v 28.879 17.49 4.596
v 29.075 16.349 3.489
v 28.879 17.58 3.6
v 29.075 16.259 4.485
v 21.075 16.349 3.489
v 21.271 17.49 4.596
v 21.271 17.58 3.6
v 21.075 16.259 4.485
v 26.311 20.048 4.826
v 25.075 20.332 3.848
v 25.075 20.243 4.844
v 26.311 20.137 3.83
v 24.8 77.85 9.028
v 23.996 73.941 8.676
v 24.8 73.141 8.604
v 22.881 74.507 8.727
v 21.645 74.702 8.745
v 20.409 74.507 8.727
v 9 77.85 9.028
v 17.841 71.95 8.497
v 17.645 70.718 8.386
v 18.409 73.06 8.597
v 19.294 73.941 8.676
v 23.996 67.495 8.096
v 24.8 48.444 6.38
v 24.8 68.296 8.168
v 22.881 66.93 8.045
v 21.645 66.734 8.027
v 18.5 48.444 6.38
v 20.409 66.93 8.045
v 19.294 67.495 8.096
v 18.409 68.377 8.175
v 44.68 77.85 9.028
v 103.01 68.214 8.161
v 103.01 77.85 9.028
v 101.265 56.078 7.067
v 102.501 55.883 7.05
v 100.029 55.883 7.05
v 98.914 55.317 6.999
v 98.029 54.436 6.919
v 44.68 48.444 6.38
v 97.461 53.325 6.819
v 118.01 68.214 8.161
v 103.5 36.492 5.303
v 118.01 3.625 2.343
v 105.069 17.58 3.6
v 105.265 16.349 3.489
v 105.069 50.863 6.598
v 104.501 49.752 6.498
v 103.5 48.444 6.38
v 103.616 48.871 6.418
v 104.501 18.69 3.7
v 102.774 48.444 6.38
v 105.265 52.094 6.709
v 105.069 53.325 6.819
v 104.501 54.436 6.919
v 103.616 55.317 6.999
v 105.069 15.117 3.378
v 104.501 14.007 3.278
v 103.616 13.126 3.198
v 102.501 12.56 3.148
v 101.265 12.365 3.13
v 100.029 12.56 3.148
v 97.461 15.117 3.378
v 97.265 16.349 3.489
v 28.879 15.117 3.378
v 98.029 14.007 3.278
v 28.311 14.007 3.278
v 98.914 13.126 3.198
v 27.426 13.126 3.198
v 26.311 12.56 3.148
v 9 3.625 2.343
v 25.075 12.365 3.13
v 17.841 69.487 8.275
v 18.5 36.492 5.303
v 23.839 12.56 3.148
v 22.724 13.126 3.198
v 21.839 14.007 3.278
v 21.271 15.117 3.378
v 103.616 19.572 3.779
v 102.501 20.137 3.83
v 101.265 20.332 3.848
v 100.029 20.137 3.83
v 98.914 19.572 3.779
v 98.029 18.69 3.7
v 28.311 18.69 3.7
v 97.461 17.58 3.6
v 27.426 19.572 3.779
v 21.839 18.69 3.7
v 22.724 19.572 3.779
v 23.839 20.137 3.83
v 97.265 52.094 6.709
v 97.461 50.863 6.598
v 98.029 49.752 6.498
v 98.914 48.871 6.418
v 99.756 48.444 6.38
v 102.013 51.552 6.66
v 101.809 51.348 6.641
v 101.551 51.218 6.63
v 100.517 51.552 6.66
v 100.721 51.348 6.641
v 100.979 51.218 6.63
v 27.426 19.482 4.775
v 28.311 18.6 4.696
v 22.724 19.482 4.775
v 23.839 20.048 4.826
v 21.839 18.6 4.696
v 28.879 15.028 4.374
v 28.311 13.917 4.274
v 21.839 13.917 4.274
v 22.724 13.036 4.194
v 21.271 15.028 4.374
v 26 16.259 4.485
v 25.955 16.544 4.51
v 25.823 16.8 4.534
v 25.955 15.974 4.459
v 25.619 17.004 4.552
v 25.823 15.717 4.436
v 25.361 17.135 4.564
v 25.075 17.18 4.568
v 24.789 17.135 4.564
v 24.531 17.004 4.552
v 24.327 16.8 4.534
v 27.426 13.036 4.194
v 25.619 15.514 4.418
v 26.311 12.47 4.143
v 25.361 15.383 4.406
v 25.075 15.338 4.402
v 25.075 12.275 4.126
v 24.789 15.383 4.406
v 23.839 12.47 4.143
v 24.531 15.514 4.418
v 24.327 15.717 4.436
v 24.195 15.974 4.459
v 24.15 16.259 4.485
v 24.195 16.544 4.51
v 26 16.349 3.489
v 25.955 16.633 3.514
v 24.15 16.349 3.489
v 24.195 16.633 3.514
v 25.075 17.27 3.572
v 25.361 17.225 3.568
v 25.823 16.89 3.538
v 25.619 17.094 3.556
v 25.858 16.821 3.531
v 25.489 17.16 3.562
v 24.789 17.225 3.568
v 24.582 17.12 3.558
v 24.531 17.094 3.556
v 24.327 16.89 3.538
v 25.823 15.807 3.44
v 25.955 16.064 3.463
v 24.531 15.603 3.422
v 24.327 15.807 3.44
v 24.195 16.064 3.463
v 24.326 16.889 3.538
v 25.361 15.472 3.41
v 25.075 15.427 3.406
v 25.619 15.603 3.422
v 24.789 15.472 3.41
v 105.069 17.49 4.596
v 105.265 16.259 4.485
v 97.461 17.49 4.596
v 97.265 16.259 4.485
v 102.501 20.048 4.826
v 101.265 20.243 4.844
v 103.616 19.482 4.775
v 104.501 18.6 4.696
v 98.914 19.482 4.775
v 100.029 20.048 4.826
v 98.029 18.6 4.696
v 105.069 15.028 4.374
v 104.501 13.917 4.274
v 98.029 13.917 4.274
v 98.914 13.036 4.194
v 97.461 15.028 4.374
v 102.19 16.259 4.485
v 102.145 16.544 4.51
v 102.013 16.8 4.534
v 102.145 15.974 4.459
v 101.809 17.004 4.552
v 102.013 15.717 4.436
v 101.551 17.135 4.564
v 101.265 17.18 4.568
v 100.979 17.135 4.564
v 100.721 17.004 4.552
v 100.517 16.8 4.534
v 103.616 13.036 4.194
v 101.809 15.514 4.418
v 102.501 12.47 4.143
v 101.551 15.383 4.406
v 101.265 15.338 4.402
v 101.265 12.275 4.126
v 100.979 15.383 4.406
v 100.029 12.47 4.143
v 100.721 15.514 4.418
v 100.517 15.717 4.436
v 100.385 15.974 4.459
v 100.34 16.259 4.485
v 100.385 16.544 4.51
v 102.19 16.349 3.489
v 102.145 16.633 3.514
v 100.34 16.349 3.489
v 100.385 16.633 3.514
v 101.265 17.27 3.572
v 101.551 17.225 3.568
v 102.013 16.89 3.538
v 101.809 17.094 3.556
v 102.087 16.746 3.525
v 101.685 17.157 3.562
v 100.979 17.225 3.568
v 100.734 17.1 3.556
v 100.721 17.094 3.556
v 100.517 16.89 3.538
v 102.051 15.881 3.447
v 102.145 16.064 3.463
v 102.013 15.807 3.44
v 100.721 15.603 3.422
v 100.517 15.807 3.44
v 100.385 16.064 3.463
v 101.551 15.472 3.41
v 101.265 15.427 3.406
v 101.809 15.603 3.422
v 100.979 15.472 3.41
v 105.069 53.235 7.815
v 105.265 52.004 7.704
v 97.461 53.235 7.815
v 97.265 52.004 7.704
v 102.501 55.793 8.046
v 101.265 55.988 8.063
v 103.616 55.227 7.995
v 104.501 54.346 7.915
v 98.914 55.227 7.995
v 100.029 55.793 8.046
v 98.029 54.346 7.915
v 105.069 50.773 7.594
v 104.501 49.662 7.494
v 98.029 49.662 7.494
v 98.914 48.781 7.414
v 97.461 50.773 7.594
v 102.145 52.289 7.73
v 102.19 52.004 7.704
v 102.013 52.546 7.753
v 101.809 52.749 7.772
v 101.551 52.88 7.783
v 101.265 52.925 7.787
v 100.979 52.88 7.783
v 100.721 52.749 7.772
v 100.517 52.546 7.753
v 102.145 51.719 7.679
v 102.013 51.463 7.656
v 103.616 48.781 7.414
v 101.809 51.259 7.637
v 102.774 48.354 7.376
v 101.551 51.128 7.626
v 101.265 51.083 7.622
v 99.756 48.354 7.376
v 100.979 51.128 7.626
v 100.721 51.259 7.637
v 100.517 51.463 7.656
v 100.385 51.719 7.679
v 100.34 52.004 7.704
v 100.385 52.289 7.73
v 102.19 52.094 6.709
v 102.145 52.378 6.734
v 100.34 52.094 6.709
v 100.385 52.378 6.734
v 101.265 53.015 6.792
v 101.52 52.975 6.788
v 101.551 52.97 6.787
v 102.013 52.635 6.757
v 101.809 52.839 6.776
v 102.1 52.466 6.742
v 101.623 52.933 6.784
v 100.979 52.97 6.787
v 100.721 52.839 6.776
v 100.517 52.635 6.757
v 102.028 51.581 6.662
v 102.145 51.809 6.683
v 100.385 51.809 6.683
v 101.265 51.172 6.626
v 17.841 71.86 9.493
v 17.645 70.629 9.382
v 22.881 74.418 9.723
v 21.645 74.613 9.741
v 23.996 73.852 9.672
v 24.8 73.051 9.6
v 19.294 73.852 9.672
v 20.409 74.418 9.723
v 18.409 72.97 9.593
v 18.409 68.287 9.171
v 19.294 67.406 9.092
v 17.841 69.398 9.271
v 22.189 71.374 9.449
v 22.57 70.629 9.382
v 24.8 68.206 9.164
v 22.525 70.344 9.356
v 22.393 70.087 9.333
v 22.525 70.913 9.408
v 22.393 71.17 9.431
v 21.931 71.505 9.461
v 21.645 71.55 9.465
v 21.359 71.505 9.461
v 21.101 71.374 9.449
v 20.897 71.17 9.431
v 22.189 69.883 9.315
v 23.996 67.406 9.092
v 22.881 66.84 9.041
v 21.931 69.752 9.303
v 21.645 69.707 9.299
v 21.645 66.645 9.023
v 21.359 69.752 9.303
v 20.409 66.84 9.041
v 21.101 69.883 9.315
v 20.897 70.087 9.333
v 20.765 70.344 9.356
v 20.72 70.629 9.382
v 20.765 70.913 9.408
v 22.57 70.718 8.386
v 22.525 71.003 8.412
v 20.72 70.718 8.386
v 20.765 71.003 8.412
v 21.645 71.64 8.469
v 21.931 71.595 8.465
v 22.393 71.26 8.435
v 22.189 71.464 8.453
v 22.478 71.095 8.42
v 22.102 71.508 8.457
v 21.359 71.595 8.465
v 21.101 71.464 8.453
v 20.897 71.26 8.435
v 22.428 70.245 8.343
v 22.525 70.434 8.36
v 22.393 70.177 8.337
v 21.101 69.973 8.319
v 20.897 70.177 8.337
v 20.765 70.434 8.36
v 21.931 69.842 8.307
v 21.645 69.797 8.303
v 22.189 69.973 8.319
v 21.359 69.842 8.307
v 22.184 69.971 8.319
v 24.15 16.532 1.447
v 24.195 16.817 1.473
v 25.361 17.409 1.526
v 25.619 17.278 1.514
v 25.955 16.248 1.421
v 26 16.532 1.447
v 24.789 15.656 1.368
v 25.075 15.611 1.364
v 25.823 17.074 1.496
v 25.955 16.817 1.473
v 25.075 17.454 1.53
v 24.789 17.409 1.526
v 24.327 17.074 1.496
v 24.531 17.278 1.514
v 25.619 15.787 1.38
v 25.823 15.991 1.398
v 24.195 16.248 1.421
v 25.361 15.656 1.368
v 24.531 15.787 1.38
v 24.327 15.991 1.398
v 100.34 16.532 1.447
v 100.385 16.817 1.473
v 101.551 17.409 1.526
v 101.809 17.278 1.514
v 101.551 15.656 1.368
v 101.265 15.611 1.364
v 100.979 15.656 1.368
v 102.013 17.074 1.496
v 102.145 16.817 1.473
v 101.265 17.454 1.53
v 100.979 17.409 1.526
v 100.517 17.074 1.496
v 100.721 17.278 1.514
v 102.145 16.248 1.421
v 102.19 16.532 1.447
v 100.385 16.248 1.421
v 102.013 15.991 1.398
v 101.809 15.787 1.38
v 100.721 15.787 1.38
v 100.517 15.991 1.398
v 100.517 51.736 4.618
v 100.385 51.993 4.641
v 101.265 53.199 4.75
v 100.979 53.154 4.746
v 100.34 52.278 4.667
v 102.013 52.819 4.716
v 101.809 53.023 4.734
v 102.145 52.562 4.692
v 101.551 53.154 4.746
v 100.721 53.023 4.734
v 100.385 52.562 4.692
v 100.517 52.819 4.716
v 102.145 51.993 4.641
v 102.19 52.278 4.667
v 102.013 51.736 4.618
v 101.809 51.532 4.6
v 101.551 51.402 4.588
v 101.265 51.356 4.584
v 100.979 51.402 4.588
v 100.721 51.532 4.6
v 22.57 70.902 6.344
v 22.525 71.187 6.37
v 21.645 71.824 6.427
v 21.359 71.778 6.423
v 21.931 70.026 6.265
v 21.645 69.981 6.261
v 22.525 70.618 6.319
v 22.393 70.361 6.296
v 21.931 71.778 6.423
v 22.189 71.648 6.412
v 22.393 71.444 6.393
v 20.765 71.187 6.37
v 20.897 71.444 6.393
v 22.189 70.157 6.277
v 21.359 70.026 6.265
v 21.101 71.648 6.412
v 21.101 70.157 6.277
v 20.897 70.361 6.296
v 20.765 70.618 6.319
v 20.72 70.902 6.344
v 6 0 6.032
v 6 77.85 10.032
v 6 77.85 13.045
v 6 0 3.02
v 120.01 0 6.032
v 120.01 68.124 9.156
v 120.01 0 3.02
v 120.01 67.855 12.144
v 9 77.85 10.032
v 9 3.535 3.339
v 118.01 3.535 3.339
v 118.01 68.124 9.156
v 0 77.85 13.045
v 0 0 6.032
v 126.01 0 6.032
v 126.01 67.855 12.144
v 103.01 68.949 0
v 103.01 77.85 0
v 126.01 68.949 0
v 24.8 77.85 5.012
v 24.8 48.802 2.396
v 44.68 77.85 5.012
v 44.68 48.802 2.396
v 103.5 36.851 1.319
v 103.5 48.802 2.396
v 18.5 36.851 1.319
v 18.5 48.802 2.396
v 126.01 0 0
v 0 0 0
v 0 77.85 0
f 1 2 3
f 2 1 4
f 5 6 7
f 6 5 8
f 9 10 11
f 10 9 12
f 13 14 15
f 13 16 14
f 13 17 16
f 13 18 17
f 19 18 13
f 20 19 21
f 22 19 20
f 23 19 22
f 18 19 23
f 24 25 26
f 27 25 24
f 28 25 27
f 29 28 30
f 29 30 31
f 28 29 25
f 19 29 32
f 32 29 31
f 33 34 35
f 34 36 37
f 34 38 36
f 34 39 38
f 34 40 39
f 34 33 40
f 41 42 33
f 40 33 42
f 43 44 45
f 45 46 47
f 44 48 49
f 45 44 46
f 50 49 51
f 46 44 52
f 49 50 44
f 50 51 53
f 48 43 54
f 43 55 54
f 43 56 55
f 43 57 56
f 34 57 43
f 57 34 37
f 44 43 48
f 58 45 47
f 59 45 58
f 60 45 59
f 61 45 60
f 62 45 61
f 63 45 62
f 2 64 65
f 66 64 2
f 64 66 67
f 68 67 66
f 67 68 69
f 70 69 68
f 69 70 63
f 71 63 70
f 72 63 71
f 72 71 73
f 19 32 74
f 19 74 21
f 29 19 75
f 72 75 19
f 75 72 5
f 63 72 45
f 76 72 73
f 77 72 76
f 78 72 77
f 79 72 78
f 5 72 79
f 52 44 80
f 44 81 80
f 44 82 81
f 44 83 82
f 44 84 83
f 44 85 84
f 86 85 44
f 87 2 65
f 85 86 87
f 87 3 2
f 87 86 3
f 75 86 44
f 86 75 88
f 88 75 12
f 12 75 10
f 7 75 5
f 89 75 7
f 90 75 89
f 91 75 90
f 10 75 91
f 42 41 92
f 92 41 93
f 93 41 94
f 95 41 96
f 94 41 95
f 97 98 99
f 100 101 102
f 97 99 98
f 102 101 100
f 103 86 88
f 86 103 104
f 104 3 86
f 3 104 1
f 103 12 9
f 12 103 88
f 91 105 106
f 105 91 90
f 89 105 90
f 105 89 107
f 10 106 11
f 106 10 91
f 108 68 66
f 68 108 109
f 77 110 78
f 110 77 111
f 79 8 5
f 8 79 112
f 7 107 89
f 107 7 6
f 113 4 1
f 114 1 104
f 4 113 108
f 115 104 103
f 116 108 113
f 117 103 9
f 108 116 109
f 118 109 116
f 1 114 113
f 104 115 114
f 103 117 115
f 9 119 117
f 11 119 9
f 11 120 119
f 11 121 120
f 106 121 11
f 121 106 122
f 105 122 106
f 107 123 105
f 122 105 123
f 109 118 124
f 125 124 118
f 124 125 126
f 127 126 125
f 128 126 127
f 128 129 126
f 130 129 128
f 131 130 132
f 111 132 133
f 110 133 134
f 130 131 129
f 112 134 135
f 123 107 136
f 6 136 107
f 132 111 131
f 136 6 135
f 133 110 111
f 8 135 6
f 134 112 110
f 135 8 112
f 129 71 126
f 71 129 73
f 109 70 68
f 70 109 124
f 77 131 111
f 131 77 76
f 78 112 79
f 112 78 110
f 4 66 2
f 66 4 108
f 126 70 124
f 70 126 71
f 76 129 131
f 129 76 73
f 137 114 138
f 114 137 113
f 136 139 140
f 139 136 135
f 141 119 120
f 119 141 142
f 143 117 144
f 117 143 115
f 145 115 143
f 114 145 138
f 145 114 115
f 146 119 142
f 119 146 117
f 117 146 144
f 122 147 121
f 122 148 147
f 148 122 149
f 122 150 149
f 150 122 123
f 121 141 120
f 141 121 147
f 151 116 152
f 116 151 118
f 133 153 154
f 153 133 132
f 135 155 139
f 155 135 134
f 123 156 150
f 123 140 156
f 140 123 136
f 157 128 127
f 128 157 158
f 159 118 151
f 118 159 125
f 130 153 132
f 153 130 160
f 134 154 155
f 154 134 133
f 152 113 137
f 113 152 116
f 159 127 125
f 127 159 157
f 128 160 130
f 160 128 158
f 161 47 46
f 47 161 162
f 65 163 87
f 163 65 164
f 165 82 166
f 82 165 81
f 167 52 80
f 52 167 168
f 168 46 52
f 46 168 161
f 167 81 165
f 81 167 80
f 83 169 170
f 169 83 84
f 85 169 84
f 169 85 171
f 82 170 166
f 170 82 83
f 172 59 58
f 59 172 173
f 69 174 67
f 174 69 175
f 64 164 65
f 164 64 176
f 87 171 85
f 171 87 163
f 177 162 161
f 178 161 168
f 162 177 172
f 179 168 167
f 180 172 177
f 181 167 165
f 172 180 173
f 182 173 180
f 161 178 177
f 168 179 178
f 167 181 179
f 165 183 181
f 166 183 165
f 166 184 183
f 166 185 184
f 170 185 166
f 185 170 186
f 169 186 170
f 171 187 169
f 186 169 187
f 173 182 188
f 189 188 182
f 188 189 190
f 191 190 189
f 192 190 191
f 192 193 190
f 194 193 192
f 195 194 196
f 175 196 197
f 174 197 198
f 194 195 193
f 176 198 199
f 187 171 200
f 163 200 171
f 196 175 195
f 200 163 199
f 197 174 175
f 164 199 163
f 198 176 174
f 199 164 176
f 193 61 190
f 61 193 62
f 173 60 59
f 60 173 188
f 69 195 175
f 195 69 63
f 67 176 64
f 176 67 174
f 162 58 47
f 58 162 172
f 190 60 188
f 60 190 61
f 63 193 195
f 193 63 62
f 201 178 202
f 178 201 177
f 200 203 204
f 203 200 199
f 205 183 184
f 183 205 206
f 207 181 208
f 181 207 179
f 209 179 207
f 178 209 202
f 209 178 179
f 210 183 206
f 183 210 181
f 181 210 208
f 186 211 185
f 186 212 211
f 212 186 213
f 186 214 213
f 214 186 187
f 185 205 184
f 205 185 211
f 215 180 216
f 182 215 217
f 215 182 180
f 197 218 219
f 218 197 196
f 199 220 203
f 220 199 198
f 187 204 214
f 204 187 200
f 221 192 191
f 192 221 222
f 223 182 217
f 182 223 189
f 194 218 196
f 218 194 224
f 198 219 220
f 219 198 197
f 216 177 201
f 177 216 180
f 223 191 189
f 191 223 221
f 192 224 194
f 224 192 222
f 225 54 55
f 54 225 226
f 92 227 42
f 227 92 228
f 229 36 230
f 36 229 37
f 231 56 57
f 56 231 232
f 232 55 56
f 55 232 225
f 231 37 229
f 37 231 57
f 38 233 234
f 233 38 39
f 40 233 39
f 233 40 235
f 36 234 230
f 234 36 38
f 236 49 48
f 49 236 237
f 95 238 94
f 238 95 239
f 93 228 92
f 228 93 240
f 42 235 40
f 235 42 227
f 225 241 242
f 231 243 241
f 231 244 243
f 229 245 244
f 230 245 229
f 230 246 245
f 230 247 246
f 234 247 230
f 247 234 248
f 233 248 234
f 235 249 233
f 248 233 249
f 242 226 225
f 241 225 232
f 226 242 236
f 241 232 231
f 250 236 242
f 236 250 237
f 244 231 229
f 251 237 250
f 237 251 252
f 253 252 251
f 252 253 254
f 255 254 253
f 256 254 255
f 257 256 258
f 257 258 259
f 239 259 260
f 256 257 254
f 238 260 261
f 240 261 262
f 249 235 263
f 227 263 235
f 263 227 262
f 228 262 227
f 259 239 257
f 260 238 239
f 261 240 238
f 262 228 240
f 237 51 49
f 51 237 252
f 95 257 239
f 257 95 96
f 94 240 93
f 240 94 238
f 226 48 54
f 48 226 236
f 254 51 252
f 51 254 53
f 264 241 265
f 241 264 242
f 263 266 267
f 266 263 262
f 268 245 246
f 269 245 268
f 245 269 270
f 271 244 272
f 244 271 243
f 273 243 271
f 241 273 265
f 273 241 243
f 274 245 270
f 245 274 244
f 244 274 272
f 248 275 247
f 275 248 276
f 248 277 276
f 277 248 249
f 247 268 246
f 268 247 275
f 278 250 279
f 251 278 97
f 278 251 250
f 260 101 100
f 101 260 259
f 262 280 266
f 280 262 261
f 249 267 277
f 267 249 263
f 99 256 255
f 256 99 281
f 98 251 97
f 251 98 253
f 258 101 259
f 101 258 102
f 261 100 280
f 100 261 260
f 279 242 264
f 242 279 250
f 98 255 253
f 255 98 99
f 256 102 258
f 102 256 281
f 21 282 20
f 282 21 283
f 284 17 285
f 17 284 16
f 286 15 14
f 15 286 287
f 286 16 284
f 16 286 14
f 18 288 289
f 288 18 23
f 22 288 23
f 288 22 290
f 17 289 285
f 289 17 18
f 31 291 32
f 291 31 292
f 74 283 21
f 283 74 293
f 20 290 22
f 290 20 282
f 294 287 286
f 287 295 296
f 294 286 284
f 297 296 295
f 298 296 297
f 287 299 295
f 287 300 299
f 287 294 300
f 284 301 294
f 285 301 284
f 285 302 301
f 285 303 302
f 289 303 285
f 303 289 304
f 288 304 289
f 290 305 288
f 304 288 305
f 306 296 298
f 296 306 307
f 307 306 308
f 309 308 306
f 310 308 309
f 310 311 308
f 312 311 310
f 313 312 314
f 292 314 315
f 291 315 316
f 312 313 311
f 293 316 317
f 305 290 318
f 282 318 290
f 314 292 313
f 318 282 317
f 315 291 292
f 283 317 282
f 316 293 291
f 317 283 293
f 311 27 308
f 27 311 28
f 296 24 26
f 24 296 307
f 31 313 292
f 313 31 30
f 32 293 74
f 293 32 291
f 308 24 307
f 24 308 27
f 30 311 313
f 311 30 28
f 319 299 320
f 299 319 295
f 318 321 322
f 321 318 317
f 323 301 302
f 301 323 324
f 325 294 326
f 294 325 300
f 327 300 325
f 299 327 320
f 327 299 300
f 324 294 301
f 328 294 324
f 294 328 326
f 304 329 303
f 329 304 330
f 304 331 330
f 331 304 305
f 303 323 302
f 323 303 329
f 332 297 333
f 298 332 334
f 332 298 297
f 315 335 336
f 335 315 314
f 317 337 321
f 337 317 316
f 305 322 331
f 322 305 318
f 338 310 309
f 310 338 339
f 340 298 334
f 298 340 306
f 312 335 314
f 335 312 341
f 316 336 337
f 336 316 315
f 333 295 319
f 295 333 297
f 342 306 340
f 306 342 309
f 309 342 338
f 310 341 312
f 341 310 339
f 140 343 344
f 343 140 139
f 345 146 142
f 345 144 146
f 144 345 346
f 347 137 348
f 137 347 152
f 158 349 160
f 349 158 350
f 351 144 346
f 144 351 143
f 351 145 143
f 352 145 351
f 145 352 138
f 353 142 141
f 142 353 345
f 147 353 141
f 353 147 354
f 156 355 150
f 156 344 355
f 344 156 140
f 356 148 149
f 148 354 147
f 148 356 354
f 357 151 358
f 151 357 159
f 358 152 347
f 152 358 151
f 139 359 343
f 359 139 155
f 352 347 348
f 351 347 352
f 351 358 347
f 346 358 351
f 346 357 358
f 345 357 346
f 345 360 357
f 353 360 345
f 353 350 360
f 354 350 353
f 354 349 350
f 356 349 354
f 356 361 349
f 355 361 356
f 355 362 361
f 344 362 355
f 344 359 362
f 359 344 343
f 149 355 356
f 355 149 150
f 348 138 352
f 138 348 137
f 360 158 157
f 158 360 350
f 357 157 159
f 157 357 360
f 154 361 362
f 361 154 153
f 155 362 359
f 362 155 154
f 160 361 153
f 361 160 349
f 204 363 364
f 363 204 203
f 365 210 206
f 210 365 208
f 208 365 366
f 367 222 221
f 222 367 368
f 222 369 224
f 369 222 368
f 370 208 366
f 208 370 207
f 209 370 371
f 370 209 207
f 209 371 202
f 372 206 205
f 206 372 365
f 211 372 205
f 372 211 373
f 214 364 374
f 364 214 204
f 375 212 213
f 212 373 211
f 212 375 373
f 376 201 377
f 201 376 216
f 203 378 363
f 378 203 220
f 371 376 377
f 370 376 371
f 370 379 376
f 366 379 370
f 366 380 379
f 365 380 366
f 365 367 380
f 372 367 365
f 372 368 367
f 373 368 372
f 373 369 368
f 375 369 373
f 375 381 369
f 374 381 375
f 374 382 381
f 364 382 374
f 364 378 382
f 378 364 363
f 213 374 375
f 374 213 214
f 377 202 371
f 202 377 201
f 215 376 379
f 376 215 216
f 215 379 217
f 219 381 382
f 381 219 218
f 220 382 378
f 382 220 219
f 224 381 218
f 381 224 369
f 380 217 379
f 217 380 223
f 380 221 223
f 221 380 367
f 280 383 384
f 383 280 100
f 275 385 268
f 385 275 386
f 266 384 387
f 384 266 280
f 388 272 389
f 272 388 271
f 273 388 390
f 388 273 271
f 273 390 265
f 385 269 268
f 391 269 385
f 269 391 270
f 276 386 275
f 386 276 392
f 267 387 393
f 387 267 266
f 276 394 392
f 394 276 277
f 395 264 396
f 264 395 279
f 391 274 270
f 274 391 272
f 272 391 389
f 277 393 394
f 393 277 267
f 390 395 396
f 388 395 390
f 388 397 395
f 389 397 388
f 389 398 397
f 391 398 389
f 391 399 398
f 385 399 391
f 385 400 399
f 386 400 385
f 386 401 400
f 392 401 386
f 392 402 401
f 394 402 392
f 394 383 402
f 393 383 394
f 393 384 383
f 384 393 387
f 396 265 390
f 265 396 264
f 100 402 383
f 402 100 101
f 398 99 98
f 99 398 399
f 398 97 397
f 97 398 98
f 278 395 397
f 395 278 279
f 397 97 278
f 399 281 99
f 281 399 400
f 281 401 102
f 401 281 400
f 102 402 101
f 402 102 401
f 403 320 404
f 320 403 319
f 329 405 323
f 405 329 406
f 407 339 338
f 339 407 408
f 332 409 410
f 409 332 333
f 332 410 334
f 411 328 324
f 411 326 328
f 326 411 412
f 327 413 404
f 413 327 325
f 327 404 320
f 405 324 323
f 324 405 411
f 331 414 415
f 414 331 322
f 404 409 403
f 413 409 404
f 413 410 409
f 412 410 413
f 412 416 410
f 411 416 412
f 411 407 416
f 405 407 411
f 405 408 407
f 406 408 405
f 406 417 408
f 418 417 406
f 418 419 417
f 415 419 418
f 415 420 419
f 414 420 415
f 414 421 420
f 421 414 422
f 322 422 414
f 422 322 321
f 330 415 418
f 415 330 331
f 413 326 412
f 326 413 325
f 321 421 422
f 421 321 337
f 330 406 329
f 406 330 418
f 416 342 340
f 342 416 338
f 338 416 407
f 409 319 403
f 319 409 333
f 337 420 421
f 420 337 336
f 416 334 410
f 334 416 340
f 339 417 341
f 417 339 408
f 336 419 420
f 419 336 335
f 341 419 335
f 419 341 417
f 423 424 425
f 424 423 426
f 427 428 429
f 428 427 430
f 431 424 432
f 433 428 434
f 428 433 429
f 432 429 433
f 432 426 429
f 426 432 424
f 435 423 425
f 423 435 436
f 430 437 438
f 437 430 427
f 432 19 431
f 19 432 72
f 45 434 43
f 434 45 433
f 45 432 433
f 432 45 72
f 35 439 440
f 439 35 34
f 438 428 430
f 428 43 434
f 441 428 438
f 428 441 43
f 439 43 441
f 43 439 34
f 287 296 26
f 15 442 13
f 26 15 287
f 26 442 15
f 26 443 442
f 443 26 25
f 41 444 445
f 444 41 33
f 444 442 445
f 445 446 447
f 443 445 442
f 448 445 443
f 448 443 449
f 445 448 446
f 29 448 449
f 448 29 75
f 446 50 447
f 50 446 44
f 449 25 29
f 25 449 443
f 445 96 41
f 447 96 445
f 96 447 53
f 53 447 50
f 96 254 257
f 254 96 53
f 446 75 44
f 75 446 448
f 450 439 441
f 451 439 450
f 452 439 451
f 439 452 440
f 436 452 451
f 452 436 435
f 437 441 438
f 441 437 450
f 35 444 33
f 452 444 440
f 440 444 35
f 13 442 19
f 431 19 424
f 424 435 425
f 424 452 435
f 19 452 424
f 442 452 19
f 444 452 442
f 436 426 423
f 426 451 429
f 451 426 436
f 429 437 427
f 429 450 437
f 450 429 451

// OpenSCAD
difference() {
  cube([126.01, 77.85, 20], center=false);
  union()
  translate([7, 0, 0]) {
    translate([0, 0, -2])
    rotate([5.147, 0, 0])
    union() {
      translate([0, 0, 4])
      difference() {
        union() {
          translate([18.075, 16.775, 0])
          translate([0, 0, -2.05])
          cylinder(h = 3.75, r1 = 0.925, r2 = 0.925, center = false, $fn = 20);
          translate([94.265, 16.775, 0])
          translate([0, 0, -2.05])
          cylinder(h = 3.75, r1 = 0.925, r2 = 0.925, center = false, $fn = 20);
          translate([94.265, 52.665000000000006, 0])
          translate([0, 0, -2.05])
          cylinder(h = 3.75, r1 = 0.925, r2 = 0.925, center = false, $fn = 20);
          translate([14.645, 71.36500000000001, 0])
          translate([0, 0, -2.05])
          cylinder(h = 3.75, r1 = 0.925, r2 = 0.925, center = false, $fn = 20);
          translate([-1, 0, 1])
          cube([114.01, 100, 100], center=false);
          translate([-8, 0, 4])
          cube([142.01, 100, 100], center=false);
          translate([2, 4, 0])
          cube([109.01, 177.85, 11.7], center=false);
          translate([96.01, 68.85, -10])
          cube([26, 17, 25], center=false);
        }
        translate([18.075, 16.775, 0])
        difference() {
          cylinder(h = 1, r1 = 4.0, r2 = 4.0, center = false, $fn = 20);
          translate([0, 0, -2.05])
          cylinder(h = 3.75, r1 = 0.925, r2 = 0.925, center = false, $fn = 20);
        }
        translate([94.265, 16.775, 0])
        difference() {
          cylinder(h = 1, r1 = 4.0, r2 = 4.0, center = false, $fn = 20);
          translate([0, 0, -2.05])
          cylinder(h = 3.75, r1 = 0.925, r2 = 0.925, center = false, $fn = 20);
        }
        translate([94.265, 52.665000000000006, 0])
        difference() {
          cylinder(h = 1, r1 = 4.0, r2 = 4.0, center = false, $fn = 20);
          translate([0, 0, -2.05])
          cylinder(h = 3.75, r1 = 0.925, r2 = 0.925, center = false, $fn = 20);
        }
        translate([14.645, 71.36500000000001, 0])
        difference() {
          cylinder(h = 1, r1 = 4.0, r2 = 4.0, center = false, $fn = 20);
          translate([0, 0, -2.05])
          cylinder(h = 3.75, r1 = 0.925, r2 = 0.925, center = false, $fn = 20);
        }
      }
      union()
      translate([-1.5, 0, 0])
      translate([19.3, 43.5, 0])
      cube([19.88, 133.44, 8], center=false);
      translate([11.5, 37, 0])
      cube([85, 12, 10], center=false);
    }
    translate([-10, -10, -150])
    cube([150, 150, 150], center=false);
  }
}
